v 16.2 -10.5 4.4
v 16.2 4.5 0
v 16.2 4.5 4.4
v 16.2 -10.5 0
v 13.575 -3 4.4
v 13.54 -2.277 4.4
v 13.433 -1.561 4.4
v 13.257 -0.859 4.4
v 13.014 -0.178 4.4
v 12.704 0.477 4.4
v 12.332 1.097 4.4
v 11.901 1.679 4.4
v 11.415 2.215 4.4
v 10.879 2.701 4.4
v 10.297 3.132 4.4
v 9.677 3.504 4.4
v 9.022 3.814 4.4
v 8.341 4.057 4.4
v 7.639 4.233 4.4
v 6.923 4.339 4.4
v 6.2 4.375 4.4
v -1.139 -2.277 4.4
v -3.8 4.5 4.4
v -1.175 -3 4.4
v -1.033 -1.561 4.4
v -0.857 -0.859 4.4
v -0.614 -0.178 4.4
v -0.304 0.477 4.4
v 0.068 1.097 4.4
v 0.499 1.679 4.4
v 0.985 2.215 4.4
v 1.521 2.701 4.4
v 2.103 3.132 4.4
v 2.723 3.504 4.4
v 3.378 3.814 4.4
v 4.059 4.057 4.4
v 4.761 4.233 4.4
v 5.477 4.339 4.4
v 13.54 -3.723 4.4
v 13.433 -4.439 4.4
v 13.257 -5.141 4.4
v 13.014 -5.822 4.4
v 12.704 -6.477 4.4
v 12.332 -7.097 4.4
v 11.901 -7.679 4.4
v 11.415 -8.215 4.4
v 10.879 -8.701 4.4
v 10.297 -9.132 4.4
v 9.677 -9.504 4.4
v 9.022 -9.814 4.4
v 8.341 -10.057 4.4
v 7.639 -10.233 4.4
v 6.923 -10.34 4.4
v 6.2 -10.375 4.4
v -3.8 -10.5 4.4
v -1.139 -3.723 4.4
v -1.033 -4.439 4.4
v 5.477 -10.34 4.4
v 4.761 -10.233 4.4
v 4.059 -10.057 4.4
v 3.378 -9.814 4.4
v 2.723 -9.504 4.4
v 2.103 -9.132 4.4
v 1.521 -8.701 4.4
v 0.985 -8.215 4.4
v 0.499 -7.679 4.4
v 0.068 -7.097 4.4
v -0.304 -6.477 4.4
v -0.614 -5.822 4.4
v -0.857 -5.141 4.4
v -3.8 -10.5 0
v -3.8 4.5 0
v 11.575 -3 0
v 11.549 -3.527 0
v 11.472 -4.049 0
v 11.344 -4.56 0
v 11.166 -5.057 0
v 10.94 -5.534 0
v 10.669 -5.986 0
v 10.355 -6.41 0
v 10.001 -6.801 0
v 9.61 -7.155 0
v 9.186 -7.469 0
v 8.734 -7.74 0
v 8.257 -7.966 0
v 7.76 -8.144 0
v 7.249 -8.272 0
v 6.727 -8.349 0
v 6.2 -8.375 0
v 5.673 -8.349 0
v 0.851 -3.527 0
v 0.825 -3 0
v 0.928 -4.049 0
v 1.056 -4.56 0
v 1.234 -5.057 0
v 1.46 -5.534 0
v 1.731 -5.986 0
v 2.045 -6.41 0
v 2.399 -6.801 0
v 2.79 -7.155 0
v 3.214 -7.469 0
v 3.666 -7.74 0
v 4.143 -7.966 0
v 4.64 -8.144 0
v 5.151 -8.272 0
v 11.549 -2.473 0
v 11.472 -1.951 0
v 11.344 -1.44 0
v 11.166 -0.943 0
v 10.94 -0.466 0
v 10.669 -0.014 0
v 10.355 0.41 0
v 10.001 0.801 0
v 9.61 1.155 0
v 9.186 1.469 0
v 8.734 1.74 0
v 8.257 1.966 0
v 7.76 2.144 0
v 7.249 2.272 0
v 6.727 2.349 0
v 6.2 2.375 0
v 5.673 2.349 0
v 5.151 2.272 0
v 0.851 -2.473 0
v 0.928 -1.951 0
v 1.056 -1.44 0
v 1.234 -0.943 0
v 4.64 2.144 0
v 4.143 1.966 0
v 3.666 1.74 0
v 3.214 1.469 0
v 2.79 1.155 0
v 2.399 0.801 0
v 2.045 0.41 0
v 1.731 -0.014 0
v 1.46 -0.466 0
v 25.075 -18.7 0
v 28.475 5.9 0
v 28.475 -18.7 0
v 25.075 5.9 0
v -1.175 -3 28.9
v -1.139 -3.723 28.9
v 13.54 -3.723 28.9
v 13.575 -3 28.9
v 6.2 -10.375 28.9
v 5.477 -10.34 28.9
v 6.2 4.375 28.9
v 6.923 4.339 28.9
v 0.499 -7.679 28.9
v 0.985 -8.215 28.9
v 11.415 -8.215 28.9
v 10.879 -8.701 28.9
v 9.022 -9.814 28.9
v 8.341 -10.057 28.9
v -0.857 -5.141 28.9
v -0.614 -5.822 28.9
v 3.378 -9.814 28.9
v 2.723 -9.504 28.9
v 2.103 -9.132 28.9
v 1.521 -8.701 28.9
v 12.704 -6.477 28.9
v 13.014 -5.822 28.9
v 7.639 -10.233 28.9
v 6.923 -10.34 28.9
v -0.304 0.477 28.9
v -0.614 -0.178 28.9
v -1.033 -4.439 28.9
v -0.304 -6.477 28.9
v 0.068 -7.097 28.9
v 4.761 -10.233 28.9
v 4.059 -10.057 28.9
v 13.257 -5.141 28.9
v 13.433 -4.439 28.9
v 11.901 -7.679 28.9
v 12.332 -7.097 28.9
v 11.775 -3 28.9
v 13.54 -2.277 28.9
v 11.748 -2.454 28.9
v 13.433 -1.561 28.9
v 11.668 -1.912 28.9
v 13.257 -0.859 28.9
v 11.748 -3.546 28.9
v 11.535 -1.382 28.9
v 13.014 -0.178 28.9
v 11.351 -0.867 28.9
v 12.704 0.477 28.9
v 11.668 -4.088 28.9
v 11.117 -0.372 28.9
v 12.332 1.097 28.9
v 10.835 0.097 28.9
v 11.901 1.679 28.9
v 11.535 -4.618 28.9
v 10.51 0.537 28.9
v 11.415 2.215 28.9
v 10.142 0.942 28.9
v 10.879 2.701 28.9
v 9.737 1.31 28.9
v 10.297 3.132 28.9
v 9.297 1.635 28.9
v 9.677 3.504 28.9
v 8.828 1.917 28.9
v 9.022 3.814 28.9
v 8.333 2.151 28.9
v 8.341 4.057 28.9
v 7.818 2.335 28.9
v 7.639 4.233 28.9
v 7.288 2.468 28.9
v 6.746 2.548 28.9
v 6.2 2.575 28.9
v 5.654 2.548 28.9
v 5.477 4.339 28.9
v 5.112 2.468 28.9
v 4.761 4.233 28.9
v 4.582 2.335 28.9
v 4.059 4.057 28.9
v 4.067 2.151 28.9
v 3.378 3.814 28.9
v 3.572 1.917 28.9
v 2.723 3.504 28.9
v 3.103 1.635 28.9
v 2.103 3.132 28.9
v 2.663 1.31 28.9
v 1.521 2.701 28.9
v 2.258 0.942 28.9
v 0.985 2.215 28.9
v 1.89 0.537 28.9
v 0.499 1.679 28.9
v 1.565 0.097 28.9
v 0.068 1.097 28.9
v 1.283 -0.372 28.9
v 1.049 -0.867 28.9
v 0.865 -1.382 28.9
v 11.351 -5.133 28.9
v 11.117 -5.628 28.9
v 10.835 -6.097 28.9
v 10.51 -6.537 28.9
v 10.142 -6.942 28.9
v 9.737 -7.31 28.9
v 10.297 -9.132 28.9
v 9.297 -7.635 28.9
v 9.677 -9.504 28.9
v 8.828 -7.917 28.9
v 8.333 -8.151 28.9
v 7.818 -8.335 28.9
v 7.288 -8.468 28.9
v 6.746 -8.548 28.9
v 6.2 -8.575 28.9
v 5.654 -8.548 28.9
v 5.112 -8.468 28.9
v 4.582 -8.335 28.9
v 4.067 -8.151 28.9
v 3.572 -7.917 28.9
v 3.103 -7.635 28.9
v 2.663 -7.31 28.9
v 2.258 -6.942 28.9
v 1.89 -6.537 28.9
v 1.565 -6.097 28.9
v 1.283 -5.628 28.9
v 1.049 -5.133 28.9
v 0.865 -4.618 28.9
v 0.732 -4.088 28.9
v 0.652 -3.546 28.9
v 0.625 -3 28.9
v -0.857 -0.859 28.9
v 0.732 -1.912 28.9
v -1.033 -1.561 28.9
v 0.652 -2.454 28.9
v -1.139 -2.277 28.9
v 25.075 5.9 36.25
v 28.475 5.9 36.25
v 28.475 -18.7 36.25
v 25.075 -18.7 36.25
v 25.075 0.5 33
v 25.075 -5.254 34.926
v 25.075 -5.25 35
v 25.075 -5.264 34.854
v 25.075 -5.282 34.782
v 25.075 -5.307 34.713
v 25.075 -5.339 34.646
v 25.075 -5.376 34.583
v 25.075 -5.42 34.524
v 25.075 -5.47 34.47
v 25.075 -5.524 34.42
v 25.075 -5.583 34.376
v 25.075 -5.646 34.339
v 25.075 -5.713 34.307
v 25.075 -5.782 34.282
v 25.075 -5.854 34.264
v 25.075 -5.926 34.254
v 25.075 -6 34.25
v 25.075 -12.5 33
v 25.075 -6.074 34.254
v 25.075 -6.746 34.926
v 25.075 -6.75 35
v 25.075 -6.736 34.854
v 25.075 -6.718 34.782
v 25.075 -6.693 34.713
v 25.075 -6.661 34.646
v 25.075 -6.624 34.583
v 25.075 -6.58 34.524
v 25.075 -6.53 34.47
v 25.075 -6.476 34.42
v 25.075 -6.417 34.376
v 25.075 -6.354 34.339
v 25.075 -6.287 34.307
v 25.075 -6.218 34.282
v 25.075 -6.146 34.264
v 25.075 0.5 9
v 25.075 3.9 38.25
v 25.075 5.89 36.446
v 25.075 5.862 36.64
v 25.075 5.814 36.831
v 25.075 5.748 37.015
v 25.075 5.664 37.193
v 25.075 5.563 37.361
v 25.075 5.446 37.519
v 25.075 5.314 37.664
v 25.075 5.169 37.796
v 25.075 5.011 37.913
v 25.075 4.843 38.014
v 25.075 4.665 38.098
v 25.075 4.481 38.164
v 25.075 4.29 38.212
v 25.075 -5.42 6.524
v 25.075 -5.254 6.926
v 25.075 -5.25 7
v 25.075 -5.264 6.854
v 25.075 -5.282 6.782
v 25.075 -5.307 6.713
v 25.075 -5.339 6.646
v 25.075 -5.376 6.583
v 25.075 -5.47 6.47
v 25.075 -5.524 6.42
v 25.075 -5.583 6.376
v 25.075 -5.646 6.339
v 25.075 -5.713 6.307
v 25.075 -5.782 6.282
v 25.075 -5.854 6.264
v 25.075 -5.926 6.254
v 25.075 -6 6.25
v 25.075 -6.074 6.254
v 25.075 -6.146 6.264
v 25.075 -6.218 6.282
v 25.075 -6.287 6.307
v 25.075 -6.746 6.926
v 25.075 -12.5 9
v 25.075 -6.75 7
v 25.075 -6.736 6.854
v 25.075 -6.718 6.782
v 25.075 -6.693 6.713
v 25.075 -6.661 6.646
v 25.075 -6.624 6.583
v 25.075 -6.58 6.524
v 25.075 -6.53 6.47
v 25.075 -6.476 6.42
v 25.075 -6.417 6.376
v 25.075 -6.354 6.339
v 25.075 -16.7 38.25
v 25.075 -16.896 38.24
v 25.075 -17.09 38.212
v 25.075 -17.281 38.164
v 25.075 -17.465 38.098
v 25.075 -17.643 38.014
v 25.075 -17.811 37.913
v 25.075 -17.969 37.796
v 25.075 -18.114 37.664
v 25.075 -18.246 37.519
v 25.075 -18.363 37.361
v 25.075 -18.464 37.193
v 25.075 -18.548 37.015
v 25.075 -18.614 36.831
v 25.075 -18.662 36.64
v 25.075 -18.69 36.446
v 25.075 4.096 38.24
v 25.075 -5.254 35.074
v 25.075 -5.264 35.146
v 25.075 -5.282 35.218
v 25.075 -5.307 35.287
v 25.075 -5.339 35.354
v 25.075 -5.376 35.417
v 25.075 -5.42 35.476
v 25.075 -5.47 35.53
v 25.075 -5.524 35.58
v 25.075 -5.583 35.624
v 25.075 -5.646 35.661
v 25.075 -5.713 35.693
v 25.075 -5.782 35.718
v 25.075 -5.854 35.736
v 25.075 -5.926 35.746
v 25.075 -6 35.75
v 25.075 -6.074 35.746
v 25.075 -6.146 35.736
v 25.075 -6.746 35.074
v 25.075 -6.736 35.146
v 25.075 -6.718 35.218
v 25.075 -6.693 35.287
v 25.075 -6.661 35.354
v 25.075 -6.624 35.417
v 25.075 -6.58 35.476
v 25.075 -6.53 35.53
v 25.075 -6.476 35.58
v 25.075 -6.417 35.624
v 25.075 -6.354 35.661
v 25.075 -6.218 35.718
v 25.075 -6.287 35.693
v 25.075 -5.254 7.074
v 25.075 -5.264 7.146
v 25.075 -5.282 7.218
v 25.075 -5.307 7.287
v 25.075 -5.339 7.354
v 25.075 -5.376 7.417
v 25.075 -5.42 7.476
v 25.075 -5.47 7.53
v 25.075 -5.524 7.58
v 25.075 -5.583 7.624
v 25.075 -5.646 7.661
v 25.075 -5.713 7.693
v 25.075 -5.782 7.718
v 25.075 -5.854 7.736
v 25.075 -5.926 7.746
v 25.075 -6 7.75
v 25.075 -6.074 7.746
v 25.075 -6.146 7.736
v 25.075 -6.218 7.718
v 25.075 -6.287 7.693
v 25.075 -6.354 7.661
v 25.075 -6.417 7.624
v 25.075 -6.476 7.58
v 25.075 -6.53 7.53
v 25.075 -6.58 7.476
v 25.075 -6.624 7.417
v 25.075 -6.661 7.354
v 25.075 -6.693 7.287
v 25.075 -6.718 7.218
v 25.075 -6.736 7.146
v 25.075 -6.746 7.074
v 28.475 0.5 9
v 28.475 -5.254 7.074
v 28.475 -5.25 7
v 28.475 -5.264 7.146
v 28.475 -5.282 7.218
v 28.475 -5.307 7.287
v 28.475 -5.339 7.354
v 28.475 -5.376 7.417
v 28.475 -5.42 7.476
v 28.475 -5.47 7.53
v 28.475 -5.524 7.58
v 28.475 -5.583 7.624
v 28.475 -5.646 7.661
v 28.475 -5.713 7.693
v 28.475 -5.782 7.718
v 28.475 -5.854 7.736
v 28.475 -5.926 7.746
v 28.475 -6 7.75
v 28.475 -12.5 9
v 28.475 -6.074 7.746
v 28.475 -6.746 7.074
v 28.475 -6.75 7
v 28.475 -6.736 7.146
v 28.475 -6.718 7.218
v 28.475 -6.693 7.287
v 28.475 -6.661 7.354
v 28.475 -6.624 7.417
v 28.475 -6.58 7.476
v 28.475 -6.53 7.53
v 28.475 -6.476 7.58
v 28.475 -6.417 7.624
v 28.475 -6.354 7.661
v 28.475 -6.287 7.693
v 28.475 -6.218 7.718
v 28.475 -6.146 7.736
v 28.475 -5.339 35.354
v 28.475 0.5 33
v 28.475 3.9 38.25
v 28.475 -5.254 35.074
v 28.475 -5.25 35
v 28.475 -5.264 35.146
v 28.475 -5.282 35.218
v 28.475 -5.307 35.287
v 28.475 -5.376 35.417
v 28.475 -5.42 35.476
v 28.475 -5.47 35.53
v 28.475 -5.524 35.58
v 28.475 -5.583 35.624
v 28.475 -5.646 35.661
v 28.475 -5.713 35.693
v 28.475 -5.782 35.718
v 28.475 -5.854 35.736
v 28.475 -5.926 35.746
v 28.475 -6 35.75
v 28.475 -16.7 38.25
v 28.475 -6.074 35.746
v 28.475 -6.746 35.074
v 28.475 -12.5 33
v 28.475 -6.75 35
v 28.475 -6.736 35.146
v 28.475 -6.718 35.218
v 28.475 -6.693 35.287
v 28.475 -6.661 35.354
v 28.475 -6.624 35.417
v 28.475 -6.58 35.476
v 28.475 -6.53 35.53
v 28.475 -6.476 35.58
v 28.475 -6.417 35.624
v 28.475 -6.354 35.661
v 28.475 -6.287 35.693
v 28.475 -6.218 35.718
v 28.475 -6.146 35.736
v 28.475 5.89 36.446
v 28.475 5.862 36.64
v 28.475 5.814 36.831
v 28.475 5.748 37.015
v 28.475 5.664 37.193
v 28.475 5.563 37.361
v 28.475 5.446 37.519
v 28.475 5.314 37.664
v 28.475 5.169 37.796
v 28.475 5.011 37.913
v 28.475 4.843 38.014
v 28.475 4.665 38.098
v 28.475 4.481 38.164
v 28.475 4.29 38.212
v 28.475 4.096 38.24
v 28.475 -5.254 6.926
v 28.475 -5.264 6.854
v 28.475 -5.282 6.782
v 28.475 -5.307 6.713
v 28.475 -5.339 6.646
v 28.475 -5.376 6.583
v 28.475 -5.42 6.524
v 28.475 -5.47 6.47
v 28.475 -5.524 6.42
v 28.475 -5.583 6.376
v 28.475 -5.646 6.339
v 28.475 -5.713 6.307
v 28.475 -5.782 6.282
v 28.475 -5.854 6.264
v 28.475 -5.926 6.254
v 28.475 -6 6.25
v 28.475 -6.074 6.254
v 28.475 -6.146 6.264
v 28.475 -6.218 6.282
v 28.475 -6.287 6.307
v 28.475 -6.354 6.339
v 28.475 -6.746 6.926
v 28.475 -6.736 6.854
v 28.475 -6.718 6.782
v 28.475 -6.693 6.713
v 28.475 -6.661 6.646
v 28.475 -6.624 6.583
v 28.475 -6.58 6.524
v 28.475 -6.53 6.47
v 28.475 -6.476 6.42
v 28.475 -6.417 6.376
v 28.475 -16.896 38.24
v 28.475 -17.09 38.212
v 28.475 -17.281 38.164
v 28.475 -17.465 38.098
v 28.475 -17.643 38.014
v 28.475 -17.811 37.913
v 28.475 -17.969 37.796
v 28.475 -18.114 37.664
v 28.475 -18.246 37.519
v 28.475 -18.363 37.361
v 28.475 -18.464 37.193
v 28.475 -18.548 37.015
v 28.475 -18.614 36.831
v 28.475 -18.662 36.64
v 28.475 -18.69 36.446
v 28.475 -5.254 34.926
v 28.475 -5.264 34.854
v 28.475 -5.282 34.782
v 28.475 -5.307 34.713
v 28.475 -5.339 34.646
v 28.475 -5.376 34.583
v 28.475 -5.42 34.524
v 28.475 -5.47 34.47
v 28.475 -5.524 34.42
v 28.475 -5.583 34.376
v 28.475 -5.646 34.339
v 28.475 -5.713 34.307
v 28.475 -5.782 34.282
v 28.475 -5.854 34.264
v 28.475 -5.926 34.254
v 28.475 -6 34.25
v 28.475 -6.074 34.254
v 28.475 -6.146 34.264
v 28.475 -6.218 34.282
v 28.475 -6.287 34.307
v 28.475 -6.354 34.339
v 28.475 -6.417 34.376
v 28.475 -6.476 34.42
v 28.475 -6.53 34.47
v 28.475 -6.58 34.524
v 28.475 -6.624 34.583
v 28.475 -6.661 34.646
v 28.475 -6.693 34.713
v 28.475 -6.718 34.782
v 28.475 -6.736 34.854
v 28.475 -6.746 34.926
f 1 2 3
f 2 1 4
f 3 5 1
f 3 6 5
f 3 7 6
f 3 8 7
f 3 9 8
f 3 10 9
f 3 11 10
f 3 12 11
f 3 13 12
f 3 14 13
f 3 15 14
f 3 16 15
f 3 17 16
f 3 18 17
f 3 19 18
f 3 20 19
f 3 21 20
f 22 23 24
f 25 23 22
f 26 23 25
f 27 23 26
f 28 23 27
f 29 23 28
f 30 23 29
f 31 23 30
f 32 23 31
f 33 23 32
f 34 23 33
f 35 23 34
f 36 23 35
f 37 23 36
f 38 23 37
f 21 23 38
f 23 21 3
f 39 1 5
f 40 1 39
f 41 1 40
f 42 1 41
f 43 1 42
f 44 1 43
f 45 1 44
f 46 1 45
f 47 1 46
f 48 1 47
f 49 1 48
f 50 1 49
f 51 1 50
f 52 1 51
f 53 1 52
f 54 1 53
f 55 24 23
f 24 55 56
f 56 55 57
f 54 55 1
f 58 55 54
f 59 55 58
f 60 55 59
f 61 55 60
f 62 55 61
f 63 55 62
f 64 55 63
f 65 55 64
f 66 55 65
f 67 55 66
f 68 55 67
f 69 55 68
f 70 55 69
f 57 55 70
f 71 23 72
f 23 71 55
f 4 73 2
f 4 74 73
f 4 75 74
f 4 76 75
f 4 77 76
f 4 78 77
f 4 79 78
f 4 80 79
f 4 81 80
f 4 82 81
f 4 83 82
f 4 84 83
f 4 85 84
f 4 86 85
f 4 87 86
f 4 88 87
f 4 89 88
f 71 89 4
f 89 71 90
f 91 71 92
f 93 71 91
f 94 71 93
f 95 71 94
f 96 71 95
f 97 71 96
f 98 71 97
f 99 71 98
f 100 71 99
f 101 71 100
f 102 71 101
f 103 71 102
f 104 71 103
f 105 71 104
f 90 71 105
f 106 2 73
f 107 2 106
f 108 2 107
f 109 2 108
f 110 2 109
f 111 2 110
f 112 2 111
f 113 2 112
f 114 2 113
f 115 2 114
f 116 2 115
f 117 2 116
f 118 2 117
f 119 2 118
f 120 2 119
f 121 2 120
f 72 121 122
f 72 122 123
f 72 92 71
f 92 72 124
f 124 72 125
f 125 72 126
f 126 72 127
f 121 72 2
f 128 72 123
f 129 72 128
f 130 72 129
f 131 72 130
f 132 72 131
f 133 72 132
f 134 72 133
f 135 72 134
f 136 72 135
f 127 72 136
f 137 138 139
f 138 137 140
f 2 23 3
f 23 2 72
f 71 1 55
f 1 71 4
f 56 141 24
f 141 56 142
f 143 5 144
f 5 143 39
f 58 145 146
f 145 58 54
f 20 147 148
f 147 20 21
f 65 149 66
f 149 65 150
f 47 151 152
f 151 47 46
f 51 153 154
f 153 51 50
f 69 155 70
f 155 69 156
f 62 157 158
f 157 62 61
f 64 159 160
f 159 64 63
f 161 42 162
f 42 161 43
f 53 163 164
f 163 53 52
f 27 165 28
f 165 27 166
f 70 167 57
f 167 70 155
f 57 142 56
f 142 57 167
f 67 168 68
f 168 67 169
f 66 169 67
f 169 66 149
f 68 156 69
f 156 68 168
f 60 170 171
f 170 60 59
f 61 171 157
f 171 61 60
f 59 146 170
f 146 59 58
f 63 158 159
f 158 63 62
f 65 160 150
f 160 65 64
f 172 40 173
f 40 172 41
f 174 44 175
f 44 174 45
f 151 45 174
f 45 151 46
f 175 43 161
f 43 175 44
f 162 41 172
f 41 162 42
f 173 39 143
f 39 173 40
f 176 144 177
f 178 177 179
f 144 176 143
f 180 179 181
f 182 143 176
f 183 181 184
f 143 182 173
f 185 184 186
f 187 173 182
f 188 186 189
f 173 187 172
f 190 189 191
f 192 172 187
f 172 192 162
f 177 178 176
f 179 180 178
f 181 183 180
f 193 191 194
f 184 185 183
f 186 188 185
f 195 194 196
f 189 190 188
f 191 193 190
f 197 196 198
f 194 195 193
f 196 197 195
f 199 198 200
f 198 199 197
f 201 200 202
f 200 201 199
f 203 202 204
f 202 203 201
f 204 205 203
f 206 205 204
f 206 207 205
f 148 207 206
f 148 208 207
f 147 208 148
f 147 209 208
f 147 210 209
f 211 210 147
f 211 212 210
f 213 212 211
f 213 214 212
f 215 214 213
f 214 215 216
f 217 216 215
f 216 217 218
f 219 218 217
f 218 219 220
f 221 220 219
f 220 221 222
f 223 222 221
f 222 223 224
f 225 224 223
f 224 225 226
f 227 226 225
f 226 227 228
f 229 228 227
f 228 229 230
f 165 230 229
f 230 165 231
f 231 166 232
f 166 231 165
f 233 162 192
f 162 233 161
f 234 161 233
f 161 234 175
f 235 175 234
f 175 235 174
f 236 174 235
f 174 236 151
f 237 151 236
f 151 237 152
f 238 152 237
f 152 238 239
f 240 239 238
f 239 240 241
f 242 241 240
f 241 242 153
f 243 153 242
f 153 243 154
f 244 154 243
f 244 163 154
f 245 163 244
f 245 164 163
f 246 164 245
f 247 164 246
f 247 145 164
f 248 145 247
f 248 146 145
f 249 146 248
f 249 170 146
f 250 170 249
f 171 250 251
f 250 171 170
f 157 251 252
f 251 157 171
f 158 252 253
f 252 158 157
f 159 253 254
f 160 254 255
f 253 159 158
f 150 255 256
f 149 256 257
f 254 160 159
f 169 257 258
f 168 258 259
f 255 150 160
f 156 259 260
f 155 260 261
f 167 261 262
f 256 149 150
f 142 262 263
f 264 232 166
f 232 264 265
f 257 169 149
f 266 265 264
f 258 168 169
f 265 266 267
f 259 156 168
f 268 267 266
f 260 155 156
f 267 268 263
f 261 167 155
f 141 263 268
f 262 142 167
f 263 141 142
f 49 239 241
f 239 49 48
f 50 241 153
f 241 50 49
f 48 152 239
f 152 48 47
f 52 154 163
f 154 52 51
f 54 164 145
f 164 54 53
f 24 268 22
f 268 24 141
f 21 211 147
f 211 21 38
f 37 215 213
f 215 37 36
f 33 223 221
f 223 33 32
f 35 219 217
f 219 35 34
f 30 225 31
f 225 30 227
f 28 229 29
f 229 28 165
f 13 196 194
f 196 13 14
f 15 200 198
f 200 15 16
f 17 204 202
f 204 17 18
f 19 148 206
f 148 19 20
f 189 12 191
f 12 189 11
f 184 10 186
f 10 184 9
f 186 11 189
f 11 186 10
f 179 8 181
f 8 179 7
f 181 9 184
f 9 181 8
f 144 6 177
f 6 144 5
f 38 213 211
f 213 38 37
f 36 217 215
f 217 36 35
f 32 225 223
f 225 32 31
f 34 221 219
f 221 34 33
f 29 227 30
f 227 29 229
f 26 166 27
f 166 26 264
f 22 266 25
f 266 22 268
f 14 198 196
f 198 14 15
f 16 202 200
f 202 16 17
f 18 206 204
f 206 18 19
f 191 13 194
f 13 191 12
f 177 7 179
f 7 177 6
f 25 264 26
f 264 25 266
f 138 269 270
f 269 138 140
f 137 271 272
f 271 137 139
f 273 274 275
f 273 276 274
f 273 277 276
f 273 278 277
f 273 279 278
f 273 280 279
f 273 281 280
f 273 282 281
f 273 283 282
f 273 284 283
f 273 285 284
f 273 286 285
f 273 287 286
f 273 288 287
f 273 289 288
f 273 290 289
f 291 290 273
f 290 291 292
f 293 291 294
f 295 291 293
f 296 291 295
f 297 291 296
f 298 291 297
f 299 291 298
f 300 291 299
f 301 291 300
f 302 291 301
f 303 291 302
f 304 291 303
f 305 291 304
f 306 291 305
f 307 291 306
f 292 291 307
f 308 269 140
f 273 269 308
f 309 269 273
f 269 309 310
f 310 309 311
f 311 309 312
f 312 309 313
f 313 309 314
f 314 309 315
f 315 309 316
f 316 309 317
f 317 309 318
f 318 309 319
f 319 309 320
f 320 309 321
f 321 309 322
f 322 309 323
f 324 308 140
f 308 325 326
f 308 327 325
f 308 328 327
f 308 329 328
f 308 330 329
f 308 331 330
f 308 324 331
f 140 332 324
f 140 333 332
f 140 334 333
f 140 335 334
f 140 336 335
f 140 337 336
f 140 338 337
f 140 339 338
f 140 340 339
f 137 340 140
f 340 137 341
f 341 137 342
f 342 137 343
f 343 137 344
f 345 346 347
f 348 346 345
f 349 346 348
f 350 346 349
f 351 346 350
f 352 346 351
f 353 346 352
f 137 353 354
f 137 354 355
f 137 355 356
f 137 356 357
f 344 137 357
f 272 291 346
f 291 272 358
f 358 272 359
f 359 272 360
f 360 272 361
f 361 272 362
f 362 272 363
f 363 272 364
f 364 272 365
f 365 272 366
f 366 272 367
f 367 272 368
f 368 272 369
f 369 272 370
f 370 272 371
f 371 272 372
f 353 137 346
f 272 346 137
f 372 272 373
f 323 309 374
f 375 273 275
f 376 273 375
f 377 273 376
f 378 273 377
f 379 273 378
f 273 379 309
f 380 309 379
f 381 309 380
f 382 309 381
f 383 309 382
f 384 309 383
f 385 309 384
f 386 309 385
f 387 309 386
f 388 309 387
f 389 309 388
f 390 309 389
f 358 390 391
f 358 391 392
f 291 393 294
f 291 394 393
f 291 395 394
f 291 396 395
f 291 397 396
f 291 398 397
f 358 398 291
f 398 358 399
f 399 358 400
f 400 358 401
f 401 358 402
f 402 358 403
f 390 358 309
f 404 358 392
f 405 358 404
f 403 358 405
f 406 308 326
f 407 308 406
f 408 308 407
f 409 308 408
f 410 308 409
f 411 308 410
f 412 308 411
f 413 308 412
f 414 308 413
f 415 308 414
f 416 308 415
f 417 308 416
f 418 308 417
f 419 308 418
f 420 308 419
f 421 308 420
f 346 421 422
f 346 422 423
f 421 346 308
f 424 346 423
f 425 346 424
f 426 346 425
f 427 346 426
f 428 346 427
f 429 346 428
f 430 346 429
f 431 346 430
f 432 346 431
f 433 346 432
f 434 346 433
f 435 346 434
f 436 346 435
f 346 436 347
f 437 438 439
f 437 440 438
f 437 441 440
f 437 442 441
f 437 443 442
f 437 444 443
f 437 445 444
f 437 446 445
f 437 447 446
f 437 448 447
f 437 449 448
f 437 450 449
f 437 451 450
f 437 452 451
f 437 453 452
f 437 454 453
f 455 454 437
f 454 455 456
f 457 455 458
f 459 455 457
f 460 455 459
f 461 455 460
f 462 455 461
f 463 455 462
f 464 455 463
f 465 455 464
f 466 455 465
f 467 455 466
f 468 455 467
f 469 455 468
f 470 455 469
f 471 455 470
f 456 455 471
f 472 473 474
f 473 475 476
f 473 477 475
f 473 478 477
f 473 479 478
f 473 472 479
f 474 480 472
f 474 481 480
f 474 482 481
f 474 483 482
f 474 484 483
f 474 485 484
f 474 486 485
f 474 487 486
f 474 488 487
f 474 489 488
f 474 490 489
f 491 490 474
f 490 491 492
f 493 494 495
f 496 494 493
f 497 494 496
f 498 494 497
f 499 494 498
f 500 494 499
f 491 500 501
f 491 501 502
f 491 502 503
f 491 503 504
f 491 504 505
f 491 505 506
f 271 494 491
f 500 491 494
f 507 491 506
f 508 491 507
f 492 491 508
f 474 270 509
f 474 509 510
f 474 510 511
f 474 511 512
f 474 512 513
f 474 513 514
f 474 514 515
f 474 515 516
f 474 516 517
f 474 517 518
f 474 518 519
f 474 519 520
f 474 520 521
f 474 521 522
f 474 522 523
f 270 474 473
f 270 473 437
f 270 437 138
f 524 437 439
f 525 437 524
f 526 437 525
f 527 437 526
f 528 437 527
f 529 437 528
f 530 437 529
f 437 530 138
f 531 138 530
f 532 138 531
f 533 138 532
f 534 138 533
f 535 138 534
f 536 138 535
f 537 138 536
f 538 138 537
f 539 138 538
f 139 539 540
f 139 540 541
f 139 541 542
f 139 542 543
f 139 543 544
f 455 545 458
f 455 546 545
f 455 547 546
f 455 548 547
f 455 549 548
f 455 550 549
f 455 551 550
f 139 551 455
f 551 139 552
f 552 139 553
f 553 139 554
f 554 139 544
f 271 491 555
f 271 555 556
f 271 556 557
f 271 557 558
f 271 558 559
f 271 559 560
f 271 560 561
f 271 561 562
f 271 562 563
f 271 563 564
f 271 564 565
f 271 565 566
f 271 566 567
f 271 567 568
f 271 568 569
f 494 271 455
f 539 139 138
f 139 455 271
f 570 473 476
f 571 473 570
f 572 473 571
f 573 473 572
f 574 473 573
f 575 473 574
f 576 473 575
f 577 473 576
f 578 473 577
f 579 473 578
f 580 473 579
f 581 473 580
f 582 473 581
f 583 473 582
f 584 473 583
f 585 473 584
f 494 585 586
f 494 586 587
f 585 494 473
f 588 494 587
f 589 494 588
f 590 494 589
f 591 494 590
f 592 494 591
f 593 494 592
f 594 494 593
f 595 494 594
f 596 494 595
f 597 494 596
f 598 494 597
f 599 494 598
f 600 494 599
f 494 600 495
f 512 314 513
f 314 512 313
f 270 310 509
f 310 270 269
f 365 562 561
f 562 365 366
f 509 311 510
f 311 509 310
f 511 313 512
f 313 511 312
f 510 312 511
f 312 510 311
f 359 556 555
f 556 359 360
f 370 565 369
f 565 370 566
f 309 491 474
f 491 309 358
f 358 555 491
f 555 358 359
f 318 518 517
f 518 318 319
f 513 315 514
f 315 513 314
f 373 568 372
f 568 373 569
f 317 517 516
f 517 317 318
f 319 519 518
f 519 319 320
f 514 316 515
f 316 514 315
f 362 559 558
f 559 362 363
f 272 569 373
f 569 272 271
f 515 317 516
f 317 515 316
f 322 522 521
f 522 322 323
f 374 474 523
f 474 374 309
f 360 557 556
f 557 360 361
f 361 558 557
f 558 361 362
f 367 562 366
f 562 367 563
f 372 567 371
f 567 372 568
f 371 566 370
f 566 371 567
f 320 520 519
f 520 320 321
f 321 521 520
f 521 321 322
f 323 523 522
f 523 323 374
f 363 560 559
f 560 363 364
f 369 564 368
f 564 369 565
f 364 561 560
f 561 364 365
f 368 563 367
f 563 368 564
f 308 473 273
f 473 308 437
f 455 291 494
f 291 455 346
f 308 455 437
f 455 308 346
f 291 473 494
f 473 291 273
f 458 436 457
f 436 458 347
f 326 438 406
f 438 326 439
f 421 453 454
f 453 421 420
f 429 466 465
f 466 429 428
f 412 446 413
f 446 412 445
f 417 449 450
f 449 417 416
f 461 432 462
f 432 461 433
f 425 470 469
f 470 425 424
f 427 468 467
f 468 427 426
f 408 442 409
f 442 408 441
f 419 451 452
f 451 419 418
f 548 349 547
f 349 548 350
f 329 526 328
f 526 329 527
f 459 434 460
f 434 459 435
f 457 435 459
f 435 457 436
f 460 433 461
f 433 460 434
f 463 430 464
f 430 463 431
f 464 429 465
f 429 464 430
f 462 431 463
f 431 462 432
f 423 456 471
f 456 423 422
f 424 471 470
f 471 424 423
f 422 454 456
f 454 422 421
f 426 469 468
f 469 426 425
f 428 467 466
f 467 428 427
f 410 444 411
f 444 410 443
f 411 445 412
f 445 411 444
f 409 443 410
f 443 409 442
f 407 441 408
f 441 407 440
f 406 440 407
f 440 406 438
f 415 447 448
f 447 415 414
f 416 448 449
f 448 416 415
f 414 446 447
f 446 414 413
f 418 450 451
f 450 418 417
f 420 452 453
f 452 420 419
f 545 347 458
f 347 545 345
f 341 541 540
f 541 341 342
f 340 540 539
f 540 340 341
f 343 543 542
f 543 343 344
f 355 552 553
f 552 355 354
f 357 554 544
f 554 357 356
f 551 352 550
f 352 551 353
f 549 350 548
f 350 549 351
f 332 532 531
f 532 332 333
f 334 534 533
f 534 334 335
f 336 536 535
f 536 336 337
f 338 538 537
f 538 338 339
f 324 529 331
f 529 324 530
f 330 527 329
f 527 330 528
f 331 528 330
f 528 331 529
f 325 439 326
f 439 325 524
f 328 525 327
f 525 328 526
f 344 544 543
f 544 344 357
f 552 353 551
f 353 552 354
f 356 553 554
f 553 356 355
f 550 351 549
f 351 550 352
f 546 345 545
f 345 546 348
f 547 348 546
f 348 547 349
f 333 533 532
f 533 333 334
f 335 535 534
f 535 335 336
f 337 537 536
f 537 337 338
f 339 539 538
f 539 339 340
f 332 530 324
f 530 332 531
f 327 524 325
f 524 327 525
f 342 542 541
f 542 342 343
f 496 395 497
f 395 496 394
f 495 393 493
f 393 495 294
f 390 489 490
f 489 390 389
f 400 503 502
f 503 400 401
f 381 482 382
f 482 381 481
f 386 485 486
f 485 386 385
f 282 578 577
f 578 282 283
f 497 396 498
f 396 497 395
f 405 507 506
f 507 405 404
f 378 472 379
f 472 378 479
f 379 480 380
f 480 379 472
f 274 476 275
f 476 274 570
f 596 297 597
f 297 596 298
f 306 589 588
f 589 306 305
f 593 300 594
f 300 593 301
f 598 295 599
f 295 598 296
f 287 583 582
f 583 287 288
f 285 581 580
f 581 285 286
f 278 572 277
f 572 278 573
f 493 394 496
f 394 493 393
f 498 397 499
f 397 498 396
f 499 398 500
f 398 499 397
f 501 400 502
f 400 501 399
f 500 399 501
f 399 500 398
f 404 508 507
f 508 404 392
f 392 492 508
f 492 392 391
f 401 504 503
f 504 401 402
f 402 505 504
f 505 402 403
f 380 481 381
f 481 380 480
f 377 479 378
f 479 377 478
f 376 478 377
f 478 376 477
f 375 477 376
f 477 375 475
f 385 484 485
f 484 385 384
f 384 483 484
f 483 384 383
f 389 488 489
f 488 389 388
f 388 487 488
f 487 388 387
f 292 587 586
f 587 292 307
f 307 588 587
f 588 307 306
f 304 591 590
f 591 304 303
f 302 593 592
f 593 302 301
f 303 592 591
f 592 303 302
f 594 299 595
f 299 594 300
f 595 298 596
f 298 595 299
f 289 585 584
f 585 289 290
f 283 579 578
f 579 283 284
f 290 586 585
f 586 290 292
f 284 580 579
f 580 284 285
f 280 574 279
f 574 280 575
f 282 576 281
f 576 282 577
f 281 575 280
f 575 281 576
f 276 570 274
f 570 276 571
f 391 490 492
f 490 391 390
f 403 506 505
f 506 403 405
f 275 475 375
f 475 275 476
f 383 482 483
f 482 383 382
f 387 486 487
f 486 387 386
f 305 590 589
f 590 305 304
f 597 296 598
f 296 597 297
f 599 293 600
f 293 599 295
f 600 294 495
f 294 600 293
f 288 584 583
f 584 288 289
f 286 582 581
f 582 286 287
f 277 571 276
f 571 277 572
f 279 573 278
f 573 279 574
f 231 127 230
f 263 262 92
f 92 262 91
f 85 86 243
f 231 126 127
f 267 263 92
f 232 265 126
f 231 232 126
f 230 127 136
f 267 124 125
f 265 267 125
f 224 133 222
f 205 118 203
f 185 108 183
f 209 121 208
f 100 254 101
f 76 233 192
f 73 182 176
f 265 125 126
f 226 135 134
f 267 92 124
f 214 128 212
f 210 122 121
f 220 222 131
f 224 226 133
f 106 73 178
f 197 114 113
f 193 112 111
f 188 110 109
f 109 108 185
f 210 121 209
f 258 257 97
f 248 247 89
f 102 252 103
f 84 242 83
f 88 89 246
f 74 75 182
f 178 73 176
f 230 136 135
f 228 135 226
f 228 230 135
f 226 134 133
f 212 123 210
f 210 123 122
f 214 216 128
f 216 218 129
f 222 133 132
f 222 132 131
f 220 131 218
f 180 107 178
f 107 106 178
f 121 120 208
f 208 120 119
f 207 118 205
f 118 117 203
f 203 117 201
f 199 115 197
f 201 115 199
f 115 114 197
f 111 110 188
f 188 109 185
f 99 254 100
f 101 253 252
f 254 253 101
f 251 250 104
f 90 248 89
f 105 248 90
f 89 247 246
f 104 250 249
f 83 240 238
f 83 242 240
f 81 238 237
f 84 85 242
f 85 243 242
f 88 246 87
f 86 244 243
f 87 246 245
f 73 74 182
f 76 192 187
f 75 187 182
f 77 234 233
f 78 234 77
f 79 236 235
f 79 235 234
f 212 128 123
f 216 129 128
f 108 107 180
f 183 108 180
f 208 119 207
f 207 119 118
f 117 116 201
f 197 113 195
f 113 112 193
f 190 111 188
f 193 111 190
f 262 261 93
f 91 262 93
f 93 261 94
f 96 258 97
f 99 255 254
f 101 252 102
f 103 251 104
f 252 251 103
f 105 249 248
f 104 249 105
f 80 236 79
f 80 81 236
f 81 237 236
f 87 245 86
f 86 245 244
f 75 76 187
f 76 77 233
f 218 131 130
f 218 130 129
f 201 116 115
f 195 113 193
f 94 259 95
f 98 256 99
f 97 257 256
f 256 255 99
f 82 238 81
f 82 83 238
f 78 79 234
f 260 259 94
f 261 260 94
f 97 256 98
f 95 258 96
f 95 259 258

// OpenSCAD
// pen holder for plotting robot




// Diameter of pen in mm.
penDiameter = 10.75;  // 10.60

union();

$fn = 64;

barrelDiameter = 15; // don't change or M3 holes shift

penRadius = penDiameter / 2;
barrelHieght = 24 + 2;
barrelWallThickness = 2;
baseThickness = 2.9;
cornerRounding = 2;
M3holeDia = 3.5;
M3nutDia = 6.6;
holeOffset = M3holeDia * 1.2;
baseLen = 15;
//baseWid = penDiameter + 2 * barrelWallThickness + 2;
baseWid = 20;
echo(baseWid);
echo(baseLen);


// servo bracket variables
servoOveralHeight = 34.5;  // 34.5 
servoBodyHeight = 24;
servoBodyWidth = 13;
servoScrewDia = 1.5;
servoScrewOffset = 2;
servoHeightOffset = barrelHieght - 5;
servoFwdOffset = penRadius + barrelWallThickness + baseThickness + 12;

rotate([0, 0, 180])
translate([-6.2, 3, 0])
difference(){
	union(){
		penHolder();
		servoBracket();
	}
    // re-drill the hole covered by servoBracket
	translate([0, 0, 0])
	cylinder(barrelHieght + baseThickness, penRadius, penRadius+0.2);

    translate([-40, -40, -40])
    cube([80, 80, 40]);

    rotate([0, 0, 0])
    union(){
		
		// pen hole
		//
    }
}	



module roundedCube(xdim ,ydim ,zdim, rdim){
	hull(){ // https://youtu.be/gKOkJWiTgAY
		translate([rdim, rdim, 0]) cylinder(zdim, rdim, rdim);
		translate([xdim-rdim, rdim, 0]) cylinder(zdim, rdim, rdim);
		translate([rdim, ydim-rdim, 0]) cylinder(zdim, rdim, rdim);
		translate([xdim-rdim, ydim-rdim, 0]) cylinder(zdim, rdim, rdim);
	}
}


module halfRoundedCube(xdim ,ydim ,zdim, rdim){
	hull(){ // only round two sides
		translate([0, rdim, 0]) cube([2, rdim * 2, zdim]);
		translate([xdim-rdim, rdim, 0]) cube([rdim, rdim * 2, zdim]);
		translate([rdim, ydim-rdim, 0]) cylinder(zdim, rdim, rdim);
		translate([xdim-rdim, ydim-rdim, 0]) cylinder(zdim, rdim, rdim);
	}
}


module halfRoundedCube2(xdim ,ydim ,zdim, rdim){
	hull(){ // https://youtu.be/gKOkJWiTgAY
		translate([rdim, rdim, 0]) cylinder(zdim, rdim, rdim);
		translate([xdim-rdim, 0, 0]) cube([rdim, rdim * 2, zdim ]);
		translate([rdim, ydim-rdim, 0]) cylinder(zdim, rdim, rdim);
		translate([xdim-rdim, ydim-rdim, 0]) cube([zdim, rdim, rdim]);
	}
}


module halfRoundedCube3(xdim ,ydim ,zdim, rdim){
	hull(){ // https://youtu.be/gKOkJWiTgAY
		translate([rdim, rdim, 0]) cylinder(zdim, rdim, rdim);
		translate([xdim-rdim, rdim, 0]) cylinder(zdim, rdim, rdim);
		translate([0, ydim-rdim, 0]) cube([zdim, rdim, rdim]);
		translate([xdim-rdim, ydim-rdim, 0]) cube([zdim, rdim, rdim + 1]);
	}
}



module penHolder(){
	// base plate
    rotate([0, 0, 0])
	difference(){
		translate([	-baseWid / 2, -baseLen / 2, 0])

		// base piece
		//roundedCube(baseWid, baseLen, baseThickness, cornerRounding);
        cube([baseWid, baseLen, baseThickness + 1.5]);

		// pen hole
		//cylinder(baseThickness, penRadius, penRadius);
    };


	// pen barrel
	translate([0, 0, baseThickness])
	difference(){
		// barrel
		cylinder(	barrelHieght, 
					penRadius + barrelWallThickness, 
					penRadius + barrelWallThickness );
		// bore
		//cylinder(barrelHieght, penRadius, penRadius + 0.25);	
	}
}


module servoBracket(){
	// servo bracket face
	//rotate([0, 90, 90]) // (z, z, x) now
	//translate([	-servoHeightOffset, 0, servoFwdOffset])
    translate([-servoFwdOffset, 3, servoHeightOffset])
    rotate([90, 0, 90])

 
	difference(){
		// base 

		union(){

            
			translate([-(   servoBodyWidth + 2 * baseThickness) / 2 -2.5,
						 	-servoOveralHeight / 2 - 6, 0])
			halfRoundedCube(servoBodyWidth + 4 * baseThickness,
							servoOveralHeight + 6, 
                            baseThickness + .5, cornerRounding);         
		}
        
        // cut off underneath
        //translate([-50, -50, -100])
        //cube([100, 100, 100]);
        
        // base holes
		translate([ -(servoBodyWidth + 2 * baseThickness) / 2 + M3holeDia,
					-servoOveralHeight / 2 + 1, 10 / 1.5])
		rotate([90, 0, 0])
		cylinder(baseThickness + 2, d=M3holeDia, d=M3holeDia);

		// body cutout
		translate([-servoBodyWidth / 2, -servoBodyHeight / 2, 0])
		cube([servoBodyWidth, servoBodyHeight , baseThickness + 1]);

		//translate([-servoBodyWidth / 2, 0.6, 0])
		//cube([servoBodyWidth, servoBodyHeight / 2 - 0.6, baseThickness + 1]);

		// vertical screw holes
		translate([0, -servoBodyHeight / 2 - servoScrewOffset, 0])
		cylinder(baseThickness + 1, servoScrewDia / 2, servoScrewDia / 2);
		translate([0, servoBodyHeight / 2 + servoScrewOffset, 0])
		cylinder(baseThickness + 1, servoScrewDia / 2, servoScrewDia / 2);
        

	}


}
